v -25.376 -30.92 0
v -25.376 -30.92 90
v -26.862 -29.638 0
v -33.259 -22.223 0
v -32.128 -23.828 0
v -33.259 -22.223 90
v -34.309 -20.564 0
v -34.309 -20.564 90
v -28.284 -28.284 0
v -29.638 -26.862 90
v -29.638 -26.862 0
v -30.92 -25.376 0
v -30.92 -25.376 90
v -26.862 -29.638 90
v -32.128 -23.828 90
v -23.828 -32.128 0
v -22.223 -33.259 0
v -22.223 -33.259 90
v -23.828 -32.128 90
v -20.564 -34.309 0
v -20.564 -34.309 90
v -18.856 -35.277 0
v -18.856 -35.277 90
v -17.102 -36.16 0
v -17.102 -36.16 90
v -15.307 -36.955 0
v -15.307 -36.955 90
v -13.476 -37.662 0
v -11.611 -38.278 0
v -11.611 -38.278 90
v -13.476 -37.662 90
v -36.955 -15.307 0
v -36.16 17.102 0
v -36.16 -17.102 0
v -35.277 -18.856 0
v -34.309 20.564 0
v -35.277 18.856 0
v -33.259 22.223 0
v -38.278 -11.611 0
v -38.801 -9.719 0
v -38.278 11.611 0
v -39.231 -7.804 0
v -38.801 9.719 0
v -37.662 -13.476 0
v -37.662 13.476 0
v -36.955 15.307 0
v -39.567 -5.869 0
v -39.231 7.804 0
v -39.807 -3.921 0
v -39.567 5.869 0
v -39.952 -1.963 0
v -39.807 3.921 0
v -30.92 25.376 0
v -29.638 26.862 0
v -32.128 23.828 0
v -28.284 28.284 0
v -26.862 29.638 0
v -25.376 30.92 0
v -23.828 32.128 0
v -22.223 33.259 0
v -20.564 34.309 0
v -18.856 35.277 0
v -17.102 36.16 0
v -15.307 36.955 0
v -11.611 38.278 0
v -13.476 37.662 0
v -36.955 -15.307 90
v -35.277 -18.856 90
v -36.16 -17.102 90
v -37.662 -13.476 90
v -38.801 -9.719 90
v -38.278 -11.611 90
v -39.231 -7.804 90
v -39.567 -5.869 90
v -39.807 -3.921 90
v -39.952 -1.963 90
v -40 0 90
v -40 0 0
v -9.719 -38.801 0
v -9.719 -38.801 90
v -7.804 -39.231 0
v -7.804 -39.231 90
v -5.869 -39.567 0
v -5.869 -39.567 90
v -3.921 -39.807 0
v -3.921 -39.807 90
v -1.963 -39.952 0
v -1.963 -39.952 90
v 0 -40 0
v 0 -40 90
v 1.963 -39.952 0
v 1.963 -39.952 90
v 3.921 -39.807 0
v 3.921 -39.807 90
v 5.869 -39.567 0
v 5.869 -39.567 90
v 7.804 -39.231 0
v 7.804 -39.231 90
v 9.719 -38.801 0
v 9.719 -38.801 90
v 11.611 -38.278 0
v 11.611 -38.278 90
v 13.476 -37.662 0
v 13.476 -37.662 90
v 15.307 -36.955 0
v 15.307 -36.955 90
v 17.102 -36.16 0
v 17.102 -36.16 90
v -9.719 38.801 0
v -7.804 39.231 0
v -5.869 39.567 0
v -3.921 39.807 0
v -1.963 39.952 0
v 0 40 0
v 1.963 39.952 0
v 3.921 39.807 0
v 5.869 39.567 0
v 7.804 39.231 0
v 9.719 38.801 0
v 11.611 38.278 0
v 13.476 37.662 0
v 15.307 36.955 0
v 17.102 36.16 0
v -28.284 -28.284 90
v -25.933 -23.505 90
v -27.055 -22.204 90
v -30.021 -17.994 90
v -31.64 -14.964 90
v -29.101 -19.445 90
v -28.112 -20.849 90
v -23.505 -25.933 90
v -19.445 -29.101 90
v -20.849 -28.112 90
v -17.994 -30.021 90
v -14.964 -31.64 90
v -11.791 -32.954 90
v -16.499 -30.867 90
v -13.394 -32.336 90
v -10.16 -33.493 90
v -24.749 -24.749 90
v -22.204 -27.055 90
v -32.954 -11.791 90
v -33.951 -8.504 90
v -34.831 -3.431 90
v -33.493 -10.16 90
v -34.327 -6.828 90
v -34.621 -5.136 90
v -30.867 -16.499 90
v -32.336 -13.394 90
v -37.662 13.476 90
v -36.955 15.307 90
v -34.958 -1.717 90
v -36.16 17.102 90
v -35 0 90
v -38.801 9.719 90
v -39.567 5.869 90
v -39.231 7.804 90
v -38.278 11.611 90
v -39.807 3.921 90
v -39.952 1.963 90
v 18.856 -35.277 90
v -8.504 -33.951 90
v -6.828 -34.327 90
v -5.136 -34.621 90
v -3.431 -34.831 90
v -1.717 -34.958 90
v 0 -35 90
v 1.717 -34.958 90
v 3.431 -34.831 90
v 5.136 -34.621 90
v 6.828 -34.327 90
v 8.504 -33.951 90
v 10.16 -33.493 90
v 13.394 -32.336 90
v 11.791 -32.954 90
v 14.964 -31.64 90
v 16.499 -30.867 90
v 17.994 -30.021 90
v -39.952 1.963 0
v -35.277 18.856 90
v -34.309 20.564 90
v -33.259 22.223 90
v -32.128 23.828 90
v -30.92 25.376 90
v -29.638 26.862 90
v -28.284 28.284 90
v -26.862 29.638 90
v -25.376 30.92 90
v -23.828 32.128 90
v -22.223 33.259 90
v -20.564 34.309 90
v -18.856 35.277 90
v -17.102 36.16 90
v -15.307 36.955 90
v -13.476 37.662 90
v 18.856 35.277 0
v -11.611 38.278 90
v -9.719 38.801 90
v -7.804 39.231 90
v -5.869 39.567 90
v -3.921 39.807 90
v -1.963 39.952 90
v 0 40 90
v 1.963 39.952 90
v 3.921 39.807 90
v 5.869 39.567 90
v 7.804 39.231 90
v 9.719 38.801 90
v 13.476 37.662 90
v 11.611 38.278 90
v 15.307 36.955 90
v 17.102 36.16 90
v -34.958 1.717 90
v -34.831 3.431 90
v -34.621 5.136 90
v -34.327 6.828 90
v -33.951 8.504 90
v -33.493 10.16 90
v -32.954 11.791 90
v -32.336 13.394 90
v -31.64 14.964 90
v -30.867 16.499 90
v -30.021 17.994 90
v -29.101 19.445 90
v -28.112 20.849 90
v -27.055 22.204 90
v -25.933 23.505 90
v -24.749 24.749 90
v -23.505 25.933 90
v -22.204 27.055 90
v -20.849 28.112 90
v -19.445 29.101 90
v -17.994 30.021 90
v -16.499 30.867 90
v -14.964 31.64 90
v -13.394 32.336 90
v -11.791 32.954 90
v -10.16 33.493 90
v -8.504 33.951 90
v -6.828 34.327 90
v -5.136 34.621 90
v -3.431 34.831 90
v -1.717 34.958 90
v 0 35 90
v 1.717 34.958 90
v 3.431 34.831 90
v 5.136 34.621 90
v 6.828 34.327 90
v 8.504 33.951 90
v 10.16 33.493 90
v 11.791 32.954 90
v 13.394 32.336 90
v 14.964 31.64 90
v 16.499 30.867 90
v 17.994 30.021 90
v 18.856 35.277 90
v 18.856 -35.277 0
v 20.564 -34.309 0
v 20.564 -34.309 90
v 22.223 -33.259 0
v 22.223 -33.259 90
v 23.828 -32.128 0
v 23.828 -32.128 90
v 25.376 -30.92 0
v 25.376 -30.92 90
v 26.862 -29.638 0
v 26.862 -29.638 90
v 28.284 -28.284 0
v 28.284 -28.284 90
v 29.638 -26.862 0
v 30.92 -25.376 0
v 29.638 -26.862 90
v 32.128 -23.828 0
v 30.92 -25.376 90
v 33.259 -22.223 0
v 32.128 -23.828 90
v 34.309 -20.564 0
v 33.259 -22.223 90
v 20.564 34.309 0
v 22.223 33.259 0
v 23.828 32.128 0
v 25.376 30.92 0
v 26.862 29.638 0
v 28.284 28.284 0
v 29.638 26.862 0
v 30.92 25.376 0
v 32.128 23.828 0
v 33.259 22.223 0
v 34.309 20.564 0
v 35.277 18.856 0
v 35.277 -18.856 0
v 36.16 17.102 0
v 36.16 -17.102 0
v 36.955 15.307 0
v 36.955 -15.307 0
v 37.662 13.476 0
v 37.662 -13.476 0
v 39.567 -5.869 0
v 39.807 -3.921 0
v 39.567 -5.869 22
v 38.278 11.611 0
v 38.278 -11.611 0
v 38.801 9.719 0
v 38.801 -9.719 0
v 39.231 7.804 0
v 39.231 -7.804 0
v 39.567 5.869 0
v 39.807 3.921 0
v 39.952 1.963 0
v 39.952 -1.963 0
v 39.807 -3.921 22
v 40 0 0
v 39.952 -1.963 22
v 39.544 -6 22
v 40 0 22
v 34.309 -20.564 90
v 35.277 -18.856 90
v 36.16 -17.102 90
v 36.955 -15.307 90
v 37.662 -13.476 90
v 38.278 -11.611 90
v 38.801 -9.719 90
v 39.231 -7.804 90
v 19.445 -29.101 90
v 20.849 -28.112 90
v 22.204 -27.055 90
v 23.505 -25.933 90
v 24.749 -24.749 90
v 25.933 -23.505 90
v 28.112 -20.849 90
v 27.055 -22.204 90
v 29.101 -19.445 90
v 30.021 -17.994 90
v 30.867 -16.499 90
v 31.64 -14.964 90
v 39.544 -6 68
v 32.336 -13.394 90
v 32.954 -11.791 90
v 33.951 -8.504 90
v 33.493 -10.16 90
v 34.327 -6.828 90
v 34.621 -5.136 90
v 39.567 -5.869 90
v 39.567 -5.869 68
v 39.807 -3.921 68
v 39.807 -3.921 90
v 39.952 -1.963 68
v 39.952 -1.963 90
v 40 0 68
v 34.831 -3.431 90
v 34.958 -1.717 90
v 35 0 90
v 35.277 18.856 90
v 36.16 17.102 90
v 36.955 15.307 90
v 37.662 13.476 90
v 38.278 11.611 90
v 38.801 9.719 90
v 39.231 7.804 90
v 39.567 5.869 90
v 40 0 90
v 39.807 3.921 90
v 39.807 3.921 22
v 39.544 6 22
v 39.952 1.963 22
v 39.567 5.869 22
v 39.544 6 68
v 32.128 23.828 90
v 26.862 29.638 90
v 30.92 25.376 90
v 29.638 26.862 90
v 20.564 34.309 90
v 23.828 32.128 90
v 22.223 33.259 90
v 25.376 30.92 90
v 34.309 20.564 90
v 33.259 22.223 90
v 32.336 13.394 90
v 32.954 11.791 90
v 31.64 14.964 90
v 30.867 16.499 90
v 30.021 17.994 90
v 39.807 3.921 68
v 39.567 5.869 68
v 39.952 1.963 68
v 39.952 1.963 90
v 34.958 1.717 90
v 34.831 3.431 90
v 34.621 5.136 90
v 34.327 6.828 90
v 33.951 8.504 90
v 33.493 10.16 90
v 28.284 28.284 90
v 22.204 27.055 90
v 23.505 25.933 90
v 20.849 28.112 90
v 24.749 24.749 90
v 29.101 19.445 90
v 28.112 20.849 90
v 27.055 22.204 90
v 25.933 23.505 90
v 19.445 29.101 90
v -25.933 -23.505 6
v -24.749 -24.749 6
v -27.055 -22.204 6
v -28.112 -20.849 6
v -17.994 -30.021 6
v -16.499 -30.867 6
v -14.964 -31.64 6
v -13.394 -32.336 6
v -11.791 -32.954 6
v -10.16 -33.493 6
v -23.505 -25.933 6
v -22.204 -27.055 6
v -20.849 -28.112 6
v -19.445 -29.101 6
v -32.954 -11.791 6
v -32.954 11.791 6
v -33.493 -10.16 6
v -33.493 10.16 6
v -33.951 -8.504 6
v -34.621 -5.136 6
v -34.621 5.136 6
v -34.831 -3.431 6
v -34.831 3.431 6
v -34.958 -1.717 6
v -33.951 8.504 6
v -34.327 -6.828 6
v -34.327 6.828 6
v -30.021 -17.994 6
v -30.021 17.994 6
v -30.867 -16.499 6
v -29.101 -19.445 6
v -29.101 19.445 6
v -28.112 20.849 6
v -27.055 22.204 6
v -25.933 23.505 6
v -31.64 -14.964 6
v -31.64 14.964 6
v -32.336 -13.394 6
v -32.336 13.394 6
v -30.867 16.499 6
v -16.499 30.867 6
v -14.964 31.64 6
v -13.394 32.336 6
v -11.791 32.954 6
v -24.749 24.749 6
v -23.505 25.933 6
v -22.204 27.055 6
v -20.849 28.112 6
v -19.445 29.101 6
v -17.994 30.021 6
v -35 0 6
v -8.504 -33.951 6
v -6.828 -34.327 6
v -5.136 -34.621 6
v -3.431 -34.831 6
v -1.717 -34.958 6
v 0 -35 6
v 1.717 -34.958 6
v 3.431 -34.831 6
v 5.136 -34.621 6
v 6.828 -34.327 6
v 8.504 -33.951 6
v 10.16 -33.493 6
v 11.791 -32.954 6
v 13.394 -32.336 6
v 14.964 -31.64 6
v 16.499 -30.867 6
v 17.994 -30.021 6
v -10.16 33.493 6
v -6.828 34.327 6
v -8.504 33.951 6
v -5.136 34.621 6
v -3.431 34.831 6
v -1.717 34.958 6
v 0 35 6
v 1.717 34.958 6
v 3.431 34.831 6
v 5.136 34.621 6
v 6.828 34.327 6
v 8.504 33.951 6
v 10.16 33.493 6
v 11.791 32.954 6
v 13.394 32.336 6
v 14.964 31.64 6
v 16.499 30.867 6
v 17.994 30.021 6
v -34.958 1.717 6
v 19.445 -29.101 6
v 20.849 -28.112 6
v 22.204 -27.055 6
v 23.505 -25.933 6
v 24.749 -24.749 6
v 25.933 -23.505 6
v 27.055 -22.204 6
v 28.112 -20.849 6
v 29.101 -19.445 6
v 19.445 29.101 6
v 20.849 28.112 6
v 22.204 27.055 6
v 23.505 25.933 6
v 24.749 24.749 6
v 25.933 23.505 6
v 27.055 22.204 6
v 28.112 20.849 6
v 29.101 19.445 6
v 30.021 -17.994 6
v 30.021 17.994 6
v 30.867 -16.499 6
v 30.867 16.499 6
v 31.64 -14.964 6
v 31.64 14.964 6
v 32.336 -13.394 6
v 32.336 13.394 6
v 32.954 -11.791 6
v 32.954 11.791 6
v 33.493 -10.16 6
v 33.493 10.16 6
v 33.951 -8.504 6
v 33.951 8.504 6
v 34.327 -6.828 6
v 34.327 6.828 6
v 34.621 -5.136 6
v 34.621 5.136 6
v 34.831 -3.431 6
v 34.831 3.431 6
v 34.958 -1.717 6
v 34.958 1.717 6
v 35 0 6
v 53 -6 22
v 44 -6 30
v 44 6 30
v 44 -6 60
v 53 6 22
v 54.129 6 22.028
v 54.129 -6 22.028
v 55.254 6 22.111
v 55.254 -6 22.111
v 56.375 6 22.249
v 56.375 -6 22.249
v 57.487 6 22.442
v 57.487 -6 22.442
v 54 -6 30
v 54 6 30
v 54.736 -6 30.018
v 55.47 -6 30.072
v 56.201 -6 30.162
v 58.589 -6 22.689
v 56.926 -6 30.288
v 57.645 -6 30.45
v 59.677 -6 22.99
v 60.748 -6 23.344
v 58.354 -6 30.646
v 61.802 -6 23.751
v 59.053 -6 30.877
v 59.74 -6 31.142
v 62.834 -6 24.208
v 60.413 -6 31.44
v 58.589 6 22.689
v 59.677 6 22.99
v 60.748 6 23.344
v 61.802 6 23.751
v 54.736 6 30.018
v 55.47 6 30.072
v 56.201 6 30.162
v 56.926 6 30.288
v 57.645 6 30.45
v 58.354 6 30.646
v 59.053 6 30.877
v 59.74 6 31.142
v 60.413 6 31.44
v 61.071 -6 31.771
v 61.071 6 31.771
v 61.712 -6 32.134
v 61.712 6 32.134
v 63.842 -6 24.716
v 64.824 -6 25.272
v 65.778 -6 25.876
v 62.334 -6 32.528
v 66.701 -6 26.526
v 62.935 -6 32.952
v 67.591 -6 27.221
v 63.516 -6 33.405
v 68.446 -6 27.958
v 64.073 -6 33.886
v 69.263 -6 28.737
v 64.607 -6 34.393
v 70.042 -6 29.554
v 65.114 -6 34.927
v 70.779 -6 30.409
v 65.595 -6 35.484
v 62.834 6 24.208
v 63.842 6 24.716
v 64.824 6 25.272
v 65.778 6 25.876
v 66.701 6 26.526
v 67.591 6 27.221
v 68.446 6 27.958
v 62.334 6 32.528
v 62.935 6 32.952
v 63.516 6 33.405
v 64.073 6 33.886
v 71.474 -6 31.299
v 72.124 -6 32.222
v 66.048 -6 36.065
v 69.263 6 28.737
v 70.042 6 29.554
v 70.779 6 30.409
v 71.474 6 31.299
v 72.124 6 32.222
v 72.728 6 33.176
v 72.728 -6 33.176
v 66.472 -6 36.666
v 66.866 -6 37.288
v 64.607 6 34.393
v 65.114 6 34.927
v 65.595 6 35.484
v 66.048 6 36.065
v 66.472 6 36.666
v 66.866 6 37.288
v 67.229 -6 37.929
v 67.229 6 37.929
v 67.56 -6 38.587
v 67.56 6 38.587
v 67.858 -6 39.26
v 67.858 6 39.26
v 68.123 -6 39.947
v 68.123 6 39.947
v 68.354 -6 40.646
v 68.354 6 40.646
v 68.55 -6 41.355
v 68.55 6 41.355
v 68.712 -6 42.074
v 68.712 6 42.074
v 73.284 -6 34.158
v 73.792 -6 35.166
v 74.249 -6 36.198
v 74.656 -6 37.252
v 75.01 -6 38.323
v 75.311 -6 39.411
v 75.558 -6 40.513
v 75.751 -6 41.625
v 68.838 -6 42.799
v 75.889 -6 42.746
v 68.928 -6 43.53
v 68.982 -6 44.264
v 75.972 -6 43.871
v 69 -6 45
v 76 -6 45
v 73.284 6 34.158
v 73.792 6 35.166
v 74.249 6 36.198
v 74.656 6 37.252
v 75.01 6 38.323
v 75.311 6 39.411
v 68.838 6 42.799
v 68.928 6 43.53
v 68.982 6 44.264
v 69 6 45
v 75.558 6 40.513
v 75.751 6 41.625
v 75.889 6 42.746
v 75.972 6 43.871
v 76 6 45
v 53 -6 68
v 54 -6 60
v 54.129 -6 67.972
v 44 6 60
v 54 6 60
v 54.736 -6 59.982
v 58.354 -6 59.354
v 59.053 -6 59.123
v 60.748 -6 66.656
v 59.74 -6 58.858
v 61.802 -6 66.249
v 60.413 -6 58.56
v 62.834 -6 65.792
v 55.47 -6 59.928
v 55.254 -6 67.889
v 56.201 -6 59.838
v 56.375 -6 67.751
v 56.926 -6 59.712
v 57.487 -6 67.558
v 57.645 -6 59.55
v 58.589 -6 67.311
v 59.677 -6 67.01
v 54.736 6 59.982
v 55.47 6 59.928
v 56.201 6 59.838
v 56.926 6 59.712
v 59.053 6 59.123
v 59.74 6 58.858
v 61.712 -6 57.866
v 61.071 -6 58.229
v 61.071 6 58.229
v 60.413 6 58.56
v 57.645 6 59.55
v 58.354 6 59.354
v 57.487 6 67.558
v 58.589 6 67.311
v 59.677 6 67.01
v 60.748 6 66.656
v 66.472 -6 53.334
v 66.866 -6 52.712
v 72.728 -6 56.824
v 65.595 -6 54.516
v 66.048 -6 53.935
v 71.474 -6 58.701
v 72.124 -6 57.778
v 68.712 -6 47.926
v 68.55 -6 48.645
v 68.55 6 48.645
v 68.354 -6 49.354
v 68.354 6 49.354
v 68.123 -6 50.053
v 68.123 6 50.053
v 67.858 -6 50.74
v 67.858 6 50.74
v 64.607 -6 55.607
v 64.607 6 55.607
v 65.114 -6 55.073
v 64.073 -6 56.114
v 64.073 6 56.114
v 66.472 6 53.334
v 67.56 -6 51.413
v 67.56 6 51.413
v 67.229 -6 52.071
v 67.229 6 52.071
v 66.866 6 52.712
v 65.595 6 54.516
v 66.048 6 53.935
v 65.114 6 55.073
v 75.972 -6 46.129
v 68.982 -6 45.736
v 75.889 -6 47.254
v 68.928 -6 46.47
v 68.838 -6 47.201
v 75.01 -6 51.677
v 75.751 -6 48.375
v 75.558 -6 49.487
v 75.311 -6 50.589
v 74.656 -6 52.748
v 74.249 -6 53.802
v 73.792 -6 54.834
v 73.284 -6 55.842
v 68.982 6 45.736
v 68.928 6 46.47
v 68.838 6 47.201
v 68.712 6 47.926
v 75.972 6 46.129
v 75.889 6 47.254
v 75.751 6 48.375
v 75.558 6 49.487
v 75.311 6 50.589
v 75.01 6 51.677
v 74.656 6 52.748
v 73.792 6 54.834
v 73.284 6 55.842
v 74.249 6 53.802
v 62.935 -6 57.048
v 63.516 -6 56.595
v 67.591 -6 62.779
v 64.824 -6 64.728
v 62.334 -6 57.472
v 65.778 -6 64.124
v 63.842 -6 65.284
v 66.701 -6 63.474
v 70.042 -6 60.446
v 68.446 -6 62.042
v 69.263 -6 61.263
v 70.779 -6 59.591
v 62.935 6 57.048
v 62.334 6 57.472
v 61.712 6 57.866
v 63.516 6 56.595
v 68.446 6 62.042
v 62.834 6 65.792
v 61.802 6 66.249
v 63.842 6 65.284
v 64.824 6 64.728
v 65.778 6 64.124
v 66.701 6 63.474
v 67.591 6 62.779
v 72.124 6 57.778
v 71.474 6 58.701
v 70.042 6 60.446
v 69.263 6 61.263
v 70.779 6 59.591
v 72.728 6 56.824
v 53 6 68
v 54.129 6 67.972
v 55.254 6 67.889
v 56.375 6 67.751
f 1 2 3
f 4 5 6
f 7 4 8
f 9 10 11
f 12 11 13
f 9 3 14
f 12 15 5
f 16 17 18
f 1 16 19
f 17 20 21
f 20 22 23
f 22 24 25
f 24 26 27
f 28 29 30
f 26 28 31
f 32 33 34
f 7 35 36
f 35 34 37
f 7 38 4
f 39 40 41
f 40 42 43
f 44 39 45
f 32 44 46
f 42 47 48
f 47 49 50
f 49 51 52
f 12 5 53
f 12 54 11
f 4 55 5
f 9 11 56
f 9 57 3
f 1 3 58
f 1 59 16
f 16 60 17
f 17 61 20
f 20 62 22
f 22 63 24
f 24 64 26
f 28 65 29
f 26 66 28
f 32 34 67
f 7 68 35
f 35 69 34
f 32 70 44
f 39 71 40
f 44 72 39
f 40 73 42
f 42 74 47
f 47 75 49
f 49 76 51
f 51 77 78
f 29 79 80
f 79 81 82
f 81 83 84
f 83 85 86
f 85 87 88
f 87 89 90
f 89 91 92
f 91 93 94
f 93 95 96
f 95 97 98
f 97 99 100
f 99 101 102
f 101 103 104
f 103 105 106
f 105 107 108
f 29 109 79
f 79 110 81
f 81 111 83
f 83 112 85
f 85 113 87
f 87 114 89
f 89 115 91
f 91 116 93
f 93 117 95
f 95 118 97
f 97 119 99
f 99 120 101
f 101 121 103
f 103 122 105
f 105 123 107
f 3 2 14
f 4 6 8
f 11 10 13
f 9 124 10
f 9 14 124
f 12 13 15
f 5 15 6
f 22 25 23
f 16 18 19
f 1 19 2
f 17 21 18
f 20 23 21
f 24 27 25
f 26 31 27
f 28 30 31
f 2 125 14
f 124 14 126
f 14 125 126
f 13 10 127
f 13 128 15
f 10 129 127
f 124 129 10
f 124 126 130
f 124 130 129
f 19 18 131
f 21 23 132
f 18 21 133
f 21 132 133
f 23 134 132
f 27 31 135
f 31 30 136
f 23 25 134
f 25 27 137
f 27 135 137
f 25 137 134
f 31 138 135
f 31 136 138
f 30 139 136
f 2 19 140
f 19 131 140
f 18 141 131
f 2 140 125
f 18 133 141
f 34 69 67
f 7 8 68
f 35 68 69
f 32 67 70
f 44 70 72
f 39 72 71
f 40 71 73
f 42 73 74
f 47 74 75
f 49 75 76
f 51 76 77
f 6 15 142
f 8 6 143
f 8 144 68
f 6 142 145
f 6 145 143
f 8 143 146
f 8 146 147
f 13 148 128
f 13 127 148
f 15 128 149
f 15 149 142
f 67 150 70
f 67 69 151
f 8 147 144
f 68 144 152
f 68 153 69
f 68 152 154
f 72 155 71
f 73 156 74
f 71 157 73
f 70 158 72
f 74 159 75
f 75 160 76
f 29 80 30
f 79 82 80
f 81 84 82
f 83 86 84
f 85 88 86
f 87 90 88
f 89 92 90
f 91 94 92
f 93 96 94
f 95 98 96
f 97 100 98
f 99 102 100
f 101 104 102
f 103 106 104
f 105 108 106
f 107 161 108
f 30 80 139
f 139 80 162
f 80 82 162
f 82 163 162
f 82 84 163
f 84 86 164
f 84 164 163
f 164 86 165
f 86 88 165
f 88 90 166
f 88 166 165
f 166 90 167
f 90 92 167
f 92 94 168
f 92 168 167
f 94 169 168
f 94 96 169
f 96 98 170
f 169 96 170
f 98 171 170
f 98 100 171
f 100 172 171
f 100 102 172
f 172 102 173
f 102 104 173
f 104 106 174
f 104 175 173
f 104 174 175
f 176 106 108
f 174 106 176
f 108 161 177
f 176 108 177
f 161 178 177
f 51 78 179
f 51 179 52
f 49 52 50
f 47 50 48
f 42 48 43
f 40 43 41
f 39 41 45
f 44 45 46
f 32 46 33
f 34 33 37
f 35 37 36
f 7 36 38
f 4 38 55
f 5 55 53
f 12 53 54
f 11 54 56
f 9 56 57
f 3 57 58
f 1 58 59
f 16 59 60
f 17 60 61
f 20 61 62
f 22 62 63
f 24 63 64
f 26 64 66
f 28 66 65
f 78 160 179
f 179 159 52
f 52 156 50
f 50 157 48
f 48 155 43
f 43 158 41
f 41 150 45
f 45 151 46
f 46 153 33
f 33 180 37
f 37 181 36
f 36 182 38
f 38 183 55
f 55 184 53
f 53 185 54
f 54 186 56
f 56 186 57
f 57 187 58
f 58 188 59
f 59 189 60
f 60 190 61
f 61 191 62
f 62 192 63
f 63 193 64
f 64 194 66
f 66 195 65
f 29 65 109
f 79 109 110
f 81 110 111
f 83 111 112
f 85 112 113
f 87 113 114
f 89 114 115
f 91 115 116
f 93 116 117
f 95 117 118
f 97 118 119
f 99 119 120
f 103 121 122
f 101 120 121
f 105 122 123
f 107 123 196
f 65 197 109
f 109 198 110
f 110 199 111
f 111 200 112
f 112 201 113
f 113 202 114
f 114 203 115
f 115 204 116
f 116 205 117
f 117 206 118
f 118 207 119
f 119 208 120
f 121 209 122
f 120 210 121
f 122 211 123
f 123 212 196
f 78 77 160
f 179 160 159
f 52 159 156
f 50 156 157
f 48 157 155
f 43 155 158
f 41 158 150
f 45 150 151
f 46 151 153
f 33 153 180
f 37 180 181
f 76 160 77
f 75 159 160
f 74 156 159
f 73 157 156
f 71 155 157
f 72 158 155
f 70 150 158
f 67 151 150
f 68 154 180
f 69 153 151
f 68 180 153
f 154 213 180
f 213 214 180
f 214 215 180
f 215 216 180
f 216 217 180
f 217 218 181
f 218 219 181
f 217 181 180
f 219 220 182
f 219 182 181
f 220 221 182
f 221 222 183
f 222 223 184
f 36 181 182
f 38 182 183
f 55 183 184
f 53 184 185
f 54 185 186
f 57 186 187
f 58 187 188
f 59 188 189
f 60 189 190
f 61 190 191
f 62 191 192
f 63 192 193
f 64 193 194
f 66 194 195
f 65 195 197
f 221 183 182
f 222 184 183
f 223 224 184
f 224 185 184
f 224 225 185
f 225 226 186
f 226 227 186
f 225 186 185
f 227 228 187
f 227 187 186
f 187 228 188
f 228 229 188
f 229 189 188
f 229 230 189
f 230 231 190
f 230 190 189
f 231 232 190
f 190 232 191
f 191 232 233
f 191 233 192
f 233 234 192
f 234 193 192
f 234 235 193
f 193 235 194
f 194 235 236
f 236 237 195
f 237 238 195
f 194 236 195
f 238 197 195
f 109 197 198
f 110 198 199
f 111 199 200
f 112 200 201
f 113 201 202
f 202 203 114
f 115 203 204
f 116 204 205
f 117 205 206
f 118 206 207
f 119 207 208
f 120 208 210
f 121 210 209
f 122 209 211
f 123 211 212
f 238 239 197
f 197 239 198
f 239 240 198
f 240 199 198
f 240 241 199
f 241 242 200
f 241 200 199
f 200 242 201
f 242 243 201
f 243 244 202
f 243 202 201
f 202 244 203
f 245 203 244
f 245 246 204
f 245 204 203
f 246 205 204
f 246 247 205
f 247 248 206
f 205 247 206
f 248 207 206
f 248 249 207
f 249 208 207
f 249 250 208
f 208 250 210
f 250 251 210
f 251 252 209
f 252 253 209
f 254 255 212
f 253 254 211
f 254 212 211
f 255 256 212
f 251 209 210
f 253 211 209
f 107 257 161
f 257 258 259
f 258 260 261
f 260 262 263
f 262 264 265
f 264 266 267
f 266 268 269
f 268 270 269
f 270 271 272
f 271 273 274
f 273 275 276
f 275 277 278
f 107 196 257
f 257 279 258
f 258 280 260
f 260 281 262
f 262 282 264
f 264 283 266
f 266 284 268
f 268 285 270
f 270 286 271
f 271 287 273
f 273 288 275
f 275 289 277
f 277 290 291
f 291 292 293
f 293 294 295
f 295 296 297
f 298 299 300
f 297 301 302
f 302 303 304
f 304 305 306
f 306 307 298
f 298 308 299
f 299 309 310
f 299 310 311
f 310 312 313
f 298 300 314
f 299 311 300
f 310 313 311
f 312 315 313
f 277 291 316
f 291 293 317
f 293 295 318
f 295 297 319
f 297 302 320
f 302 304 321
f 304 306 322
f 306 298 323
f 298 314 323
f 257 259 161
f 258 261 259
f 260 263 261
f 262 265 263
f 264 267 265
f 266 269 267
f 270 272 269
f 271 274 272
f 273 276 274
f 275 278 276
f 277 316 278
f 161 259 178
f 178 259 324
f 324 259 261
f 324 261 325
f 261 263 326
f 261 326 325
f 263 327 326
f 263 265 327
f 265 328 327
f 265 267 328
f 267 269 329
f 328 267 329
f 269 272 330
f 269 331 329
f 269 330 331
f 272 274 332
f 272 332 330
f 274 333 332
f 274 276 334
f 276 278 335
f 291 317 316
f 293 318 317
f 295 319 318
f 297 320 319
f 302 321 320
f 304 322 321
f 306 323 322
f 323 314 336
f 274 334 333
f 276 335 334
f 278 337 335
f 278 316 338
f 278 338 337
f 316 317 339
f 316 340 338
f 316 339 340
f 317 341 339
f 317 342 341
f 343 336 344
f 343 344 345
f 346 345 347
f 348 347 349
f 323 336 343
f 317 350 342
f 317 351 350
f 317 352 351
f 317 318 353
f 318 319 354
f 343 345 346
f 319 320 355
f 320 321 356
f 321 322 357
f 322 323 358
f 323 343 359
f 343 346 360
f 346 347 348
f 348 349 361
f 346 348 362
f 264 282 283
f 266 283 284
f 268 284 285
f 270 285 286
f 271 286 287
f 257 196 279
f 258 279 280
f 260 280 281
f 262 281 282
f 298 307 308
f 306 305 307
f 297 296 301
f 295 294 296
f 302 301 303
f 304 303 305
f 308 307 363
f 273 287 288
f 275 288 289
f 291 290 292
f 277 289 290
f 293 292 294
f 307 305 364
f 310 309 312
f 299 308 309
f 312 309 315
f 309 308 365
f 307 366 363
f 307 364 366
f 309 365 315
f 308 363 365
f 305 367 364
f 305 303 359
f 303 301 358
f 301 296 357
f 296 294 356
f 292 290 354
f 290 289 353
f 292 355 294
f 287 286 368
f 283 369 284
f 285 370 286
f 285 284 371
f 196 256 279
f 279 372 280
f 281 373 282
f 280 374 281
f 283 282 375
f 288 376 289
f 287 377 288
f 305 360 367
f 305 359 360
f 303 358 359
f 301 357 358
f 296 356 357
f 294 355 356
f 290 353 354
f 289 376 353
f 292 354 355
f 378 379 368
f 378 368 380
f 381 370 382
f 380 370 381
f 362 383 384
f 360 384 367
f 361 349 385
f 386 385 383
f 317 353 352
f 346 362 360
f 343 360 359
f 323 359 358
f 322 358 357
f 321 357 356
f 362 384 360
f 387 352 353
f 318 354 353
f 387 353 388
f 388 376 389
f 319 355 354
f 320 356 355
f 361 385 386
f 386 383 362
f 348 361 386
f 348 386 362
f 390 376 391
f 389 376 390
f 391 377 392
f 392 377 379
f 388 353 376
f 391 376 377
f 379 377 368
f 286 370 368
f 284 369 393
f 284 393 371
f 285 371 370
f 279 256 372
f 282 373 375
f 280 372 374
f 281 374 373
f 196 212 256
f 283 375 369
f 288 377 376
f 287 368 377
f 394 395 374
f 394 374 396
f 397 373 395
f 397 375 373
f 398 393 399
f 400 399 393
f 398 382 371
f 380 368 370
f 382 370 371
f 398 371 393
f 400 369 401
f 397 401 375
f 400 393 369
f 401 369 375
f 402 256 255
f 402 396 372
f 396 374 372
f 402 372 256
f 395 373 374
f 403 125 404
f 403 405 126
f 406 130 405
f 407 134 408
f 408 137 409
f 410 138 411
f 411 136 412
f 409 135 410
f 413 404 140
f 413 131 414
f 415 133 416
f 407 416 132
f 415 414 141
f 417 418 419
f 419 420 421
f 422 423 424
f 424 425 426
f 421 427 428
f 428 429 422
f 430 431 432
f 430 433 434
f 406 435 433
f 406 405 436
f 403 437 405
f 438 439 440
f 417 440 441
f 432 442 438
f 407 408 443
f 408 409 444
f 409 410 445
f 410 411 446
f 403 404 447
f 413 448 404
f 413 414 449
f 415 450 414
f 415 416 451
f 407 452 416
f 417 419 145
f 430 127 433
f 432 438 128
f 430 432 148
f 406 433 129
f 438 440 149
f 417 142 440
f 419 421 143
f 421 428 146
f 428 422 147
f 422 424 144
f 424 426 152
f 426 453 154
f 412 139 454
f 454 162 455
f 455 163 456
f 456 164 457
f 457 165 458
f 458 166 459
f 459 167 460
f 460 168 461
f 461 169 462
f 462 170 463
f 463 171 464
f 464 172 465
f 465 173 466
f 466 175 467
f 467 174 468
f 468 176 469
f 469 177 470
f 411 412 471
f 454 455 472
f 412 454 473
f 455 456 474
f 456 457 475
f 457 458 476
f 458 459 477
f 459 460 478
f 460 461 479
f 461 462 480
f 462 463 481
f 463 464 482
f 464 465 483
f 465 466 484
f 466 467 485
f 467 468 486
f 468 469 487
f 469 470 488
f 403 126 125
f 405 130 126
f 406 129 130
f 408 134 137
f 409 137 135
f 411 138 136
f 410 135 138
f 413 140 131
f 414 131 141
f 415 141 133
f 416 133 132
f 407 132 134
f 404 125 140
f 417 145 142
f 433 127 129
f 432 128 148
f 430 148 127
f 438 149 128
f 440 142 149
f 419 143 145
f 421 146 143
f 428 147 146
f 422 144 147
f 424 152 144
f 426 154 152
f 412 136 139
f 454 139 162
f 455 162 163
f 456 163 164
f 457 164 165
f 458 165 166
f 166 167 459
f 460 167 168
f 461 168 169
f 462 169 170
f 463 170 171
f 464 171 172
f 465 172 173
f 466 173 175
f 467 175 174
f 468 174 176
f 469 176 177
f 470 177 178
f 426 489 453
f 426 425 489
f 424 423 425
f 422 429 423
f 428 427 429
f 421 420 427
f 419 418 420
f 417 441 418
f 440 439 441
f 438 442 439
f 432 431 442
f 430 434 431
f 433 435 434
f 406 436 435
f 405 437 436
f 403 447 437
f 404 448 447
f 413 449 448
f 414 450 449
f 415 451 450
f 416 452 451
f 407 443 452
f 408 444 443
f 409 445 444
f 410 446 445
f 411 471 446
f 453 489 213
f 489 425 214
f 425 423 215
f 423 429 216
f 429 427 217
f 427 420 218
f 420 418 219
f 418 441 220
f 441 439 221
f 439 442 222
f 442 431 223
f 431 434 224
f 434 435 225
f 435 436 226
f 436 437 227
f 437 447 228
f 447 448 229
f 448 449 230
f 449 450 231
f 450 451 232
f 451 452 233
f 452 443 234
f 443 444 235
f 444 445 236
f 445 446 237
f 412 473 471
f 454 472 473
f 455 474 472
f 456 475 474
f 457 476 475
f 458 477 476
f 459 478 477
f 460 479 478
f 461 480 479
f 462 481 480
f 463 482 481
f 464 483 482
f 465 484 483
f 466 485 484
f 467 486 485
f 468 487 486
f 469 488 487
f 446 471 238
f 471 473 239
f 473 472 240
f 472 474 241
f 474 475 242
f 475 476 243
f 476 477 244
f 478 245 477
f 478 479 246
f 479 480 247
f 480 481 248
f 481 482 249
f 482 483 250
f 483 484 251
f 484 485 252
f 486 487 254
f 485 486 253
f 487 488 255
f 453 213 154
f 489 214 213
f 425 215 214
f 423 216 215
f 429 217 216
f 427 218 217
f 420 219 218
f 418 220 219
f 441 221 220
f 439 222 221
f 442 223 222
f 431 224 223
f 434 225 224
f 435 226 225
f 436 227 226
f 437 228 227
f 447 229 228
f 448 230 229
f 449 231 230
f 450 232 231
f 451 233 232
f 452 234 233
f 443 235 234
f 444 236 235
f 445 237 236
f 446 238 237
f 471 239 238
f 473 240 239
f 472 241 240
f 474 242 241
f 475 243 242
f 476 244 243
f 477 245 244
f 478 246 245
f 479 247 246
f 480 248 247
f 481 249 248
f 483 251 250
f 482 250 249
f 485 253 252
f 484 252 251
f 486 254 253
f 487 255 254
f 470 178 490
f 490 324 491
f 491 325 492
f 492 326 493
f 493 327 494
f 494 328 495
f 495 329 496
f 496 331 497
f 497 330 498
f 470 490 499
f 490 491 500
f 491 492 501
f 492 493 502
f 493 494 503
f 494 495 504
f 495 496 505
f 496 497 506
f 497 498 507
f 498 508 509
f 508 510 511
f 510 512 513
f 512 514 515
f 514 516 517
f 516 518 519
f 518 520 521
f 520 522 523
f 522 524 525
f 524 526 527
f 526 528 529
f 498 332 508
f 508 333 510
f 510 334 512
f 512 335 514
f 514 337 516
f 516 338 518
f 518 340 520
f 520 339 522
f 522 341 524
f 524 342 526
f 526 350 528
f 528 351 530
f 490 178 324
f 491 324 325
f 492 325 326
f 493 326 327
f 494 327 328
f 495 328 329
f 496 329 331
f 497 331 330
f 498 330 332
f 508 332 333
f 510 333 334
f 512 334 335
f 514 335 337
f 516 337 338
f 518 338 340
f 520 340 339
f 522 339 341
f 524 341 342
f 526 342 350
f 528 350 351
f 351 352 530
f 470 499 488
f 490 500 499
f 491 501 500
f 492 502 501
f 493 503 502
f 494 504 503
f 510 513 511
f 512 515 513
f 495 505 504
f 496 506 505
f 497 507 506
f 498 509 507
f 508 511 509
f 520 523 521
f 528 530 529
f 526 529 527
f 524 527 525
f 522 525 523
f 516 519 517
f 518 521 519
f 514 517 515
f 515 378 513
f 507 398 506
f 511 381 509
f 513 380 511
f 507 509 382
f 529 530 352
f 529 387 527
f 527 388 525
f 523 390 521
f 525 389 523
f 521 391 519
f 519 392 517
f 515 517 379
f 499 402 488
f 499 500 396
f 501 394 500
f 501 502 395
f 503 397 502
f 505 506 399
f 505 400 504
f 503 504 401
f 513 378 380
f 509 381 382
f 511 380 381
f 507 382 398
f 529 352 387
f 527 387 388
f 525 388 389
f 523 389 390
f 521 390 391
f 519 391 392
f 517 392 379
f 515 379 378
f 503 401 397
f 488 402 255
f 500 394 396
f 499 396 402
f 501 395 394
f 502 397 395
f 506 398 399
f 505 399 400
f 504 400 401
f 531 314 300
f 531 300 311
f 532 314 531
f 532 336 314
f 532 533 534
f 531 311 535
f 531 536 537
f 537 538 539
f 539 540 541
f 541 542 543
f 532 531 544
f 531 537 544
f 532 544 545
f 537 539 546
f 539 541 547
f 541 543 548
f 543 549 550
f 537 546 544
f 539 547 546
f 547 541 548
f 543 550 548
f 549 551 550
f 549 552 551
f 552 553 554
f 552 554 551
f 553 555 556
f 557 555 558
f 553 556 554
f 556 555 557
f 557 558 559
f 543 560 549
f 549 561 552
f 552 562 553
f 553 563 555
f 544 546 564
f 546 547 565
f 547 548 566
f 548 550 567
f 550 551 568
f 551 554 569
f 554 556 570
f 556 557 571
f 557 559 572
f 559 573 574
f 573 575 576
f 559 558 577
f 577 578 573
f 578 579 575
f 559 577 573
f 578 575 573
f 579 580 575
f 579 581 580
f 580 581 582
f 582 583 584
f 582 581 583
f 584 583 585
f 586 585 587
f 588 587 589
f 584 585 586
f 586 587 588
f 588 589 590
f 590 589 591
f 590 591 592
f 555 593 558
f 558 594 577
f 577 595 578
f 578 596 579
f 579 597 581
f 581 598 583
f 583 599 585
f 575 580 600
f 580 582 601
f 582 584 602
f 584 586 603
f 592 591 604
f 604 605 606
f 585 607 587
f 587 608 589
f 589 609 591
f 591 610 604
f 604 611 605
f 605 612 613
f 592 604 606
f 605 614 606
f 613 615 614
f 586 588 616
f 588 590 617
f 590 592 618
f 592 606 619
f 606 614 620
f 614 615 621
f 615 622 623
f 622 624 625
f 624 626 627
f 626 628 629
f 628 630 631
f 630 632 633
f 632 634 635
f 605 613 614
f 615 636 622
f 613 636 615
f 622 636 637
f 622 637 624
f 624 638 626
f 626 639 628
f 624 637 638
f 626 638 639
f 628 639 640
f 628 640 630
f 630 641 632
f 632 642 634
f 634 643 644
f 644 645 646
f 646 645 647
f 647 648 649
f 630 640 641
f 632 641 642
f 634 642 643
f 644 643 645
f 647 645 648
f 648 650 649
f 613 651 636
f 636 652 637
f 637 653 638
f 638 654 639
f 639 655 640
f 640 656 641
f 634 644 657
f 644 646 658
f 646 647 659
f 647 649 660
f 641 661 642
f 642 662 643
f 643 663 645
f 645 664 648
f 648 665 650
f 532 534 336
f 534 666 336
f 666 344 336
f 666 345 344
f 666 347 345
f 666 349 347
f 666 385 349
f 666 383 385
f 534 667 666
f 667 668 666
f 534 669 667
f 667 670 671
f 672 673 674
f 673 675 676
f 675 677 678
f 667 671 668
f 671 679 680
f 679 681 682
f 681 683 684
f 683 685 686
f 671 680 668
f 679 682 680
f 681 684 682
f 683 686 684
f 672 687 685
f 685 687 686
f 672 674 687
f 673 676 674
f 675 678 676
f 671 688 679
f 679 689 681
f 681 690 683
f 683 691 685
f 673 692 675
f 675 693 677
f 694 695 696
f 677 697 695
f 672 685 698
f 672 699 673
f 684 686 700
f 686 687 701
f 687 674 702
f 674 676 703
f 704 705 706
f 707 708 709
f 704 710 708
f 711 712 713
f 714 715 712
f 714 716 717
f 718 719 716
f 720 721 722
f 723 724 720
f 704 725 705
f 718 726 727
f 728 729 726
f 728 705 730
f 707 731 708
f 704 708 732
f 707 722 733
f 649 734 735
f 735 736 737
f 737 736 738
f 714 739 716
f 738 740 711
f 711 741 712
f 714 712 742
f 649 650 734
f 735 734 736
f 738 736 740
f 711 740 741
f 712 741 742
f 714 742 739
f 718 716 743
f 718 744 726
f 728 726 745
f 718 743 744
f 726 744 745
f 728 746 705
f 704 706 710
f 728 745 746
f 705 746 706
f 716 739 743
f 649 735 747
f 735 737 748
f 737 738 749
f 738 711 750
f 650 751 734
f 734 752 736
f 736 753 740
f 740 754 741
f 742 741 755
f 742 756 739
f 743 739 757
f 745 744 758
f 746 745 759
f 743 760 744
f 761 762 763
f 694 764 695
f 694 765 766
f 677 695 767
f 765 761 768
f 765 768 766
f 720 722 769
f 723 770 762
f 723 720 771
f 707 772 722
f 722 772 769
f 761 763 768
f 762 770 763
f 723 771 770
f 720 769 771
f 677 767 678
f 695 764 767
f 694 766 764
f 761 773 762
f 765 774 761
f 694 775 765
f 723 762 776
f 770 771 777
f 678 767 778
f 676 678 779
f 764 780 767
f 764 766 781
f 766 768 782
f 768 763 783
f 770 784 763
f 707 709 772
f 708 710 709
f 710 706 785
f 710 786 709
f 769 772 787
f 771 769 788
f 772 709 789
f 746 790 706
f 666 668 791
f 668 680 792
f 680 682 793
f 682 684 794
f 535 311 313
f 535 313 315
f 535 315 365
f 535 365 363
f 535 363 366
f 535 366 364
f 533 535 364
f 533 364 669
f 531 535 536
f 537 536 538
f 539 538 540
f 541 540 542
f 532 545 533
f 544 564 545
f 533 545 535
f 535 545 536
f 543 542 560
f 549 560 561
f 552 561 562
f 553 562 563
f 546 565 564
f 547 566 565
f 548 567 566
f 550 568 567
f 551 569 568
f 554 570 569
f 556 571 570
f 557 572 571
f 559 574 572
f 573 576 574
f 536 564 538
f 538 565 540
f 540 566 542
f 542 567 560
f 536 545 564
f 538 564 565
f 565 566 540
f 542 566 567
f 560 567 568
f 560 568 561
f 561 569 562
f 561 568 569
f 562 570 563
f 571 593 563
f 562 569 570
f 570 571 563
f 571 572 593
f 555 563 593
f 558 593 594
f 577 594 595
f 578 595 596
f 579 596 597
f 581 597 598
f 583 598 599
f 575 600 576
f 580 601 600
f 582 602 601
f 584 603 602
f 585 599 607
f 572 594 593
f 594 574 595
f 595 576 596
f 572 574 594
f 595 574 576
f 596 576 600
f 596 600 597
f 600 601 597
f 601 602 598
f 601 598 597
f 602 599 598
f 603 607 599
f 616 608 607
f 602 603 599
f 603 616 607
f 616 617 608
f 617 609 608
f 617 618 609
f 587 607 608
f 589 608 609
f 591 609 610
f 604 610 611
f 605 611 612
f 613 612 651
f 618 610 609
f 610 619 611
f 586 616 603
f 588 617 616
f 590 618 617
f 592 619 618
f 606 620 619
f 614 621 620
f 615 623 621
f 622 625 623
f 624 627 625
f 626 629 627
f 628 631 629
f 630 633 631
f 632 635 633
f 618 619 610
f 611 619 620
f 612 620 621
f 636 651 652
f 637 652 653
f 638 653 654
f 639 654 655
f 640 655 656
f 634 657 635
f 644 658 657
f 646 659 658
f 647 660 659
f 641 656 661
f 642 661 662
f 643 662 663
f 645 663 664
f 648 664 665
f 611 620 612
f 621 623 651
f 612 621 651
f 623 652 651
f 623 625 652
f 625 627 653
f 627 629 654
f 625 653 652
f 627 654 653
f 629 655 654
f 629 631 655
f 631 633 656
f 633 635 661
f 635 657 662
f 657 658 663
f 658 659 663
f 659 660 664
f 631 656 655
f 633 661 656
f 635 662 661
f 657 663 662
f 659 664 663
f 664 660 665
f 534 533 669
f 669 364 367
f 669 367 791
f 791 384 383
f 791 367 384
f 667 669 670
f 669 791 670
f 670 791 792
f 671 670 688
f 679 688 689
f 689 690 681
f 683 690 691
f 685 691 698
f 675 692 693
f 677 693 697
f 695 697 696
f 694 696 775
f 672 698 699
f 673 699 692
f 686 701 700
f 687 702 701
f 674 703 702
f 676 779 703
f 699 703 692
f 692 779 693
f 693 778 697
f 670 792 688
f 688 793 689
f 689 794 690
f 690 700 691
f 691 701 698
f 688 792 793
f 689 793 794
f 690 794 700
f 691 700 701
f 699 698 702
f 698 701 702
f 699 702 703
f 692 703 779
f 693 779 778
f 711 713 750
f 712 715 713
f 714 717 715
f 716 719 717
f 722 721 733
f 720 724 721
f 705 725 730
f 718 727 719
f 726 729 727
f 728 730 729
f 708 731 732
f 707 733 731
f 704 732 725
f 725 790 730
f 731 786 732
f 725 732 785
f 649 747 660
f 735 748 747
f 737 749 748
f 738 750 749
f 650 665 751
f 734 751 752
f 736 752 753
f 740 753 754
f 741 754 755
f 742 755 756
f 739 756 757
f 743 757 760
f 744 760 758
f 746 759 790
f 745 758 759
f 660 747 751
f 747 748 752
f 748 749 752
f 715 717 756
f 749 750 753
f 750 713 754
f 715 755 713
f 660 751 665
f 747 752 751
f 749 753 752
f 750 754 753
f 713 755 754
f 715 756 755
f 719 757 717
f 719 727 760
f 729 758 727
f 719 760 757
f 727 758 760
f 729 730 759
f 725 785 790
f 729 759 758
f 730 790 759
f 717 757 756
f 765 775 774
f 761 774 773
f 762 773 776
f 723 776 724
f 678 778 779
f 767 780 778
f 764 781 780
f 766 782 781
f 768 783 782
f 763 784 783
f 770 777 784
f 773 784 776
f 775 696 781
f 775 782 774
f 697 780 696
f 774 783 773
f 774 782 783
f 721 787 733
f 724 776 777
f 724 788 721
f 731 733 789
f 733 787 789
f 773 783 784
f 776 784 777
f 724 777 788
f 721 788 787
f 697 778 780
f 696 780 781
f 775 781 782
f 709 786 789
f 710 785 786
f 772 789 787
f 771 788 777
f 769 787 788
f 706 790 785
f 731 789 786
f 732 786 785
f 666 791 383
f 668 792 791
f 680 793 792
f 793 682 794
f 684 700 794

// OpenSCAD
$fn = 128;

outer_diameter = 80;
inner_diameter = 70;
height = 90;
bottom_thickness = 6;

handle_thickness = 12;
handle_center_z = height / 2;
handle_segments = 64;

// D-shaped profile: a straight body-side edge and a semicircular outer edge.
module d_profile(x_flat, x_arc_center, radius, segments = 64) {
    polygon(points = concat(
        [[x_flat, -radius], [x_arc_center, -radius]],
        [
            for (i = [1:segments])
                [
                    x_arc_center + radius * cos(-90 + 180 * i / segments),
                    radius * sin(-90 + 180 * i / segments)
                ]
        ],
        [[x_flat, radius]]
    ));
}

module mug_body() {
    difference() {
        cylinder(d = outer_diameter, h = height);

        translate([0, 0, bottom_thickness])
            cylinder(
                d = inner_diameter,
                h = height - bottom_thickness + 1
            );
    }
}

module mug_handle() {
    translate([0, handle_thickness / 2, handle_center_z])
        rotate([90, 0, 0])
            linear_extrude(height = handle_thickness)
                difference() {
                    // Outer D profile, overlapping the mug for a solid union.
                    d_profile(36, 53, 23, handle_segments);

                    // Clear opening: 25 mm wide by 30 mm high.
                    d_profile(44, 54, 15, handle_segments);
                }
}

union() {
    mug_body();
    mug_handle();
}
